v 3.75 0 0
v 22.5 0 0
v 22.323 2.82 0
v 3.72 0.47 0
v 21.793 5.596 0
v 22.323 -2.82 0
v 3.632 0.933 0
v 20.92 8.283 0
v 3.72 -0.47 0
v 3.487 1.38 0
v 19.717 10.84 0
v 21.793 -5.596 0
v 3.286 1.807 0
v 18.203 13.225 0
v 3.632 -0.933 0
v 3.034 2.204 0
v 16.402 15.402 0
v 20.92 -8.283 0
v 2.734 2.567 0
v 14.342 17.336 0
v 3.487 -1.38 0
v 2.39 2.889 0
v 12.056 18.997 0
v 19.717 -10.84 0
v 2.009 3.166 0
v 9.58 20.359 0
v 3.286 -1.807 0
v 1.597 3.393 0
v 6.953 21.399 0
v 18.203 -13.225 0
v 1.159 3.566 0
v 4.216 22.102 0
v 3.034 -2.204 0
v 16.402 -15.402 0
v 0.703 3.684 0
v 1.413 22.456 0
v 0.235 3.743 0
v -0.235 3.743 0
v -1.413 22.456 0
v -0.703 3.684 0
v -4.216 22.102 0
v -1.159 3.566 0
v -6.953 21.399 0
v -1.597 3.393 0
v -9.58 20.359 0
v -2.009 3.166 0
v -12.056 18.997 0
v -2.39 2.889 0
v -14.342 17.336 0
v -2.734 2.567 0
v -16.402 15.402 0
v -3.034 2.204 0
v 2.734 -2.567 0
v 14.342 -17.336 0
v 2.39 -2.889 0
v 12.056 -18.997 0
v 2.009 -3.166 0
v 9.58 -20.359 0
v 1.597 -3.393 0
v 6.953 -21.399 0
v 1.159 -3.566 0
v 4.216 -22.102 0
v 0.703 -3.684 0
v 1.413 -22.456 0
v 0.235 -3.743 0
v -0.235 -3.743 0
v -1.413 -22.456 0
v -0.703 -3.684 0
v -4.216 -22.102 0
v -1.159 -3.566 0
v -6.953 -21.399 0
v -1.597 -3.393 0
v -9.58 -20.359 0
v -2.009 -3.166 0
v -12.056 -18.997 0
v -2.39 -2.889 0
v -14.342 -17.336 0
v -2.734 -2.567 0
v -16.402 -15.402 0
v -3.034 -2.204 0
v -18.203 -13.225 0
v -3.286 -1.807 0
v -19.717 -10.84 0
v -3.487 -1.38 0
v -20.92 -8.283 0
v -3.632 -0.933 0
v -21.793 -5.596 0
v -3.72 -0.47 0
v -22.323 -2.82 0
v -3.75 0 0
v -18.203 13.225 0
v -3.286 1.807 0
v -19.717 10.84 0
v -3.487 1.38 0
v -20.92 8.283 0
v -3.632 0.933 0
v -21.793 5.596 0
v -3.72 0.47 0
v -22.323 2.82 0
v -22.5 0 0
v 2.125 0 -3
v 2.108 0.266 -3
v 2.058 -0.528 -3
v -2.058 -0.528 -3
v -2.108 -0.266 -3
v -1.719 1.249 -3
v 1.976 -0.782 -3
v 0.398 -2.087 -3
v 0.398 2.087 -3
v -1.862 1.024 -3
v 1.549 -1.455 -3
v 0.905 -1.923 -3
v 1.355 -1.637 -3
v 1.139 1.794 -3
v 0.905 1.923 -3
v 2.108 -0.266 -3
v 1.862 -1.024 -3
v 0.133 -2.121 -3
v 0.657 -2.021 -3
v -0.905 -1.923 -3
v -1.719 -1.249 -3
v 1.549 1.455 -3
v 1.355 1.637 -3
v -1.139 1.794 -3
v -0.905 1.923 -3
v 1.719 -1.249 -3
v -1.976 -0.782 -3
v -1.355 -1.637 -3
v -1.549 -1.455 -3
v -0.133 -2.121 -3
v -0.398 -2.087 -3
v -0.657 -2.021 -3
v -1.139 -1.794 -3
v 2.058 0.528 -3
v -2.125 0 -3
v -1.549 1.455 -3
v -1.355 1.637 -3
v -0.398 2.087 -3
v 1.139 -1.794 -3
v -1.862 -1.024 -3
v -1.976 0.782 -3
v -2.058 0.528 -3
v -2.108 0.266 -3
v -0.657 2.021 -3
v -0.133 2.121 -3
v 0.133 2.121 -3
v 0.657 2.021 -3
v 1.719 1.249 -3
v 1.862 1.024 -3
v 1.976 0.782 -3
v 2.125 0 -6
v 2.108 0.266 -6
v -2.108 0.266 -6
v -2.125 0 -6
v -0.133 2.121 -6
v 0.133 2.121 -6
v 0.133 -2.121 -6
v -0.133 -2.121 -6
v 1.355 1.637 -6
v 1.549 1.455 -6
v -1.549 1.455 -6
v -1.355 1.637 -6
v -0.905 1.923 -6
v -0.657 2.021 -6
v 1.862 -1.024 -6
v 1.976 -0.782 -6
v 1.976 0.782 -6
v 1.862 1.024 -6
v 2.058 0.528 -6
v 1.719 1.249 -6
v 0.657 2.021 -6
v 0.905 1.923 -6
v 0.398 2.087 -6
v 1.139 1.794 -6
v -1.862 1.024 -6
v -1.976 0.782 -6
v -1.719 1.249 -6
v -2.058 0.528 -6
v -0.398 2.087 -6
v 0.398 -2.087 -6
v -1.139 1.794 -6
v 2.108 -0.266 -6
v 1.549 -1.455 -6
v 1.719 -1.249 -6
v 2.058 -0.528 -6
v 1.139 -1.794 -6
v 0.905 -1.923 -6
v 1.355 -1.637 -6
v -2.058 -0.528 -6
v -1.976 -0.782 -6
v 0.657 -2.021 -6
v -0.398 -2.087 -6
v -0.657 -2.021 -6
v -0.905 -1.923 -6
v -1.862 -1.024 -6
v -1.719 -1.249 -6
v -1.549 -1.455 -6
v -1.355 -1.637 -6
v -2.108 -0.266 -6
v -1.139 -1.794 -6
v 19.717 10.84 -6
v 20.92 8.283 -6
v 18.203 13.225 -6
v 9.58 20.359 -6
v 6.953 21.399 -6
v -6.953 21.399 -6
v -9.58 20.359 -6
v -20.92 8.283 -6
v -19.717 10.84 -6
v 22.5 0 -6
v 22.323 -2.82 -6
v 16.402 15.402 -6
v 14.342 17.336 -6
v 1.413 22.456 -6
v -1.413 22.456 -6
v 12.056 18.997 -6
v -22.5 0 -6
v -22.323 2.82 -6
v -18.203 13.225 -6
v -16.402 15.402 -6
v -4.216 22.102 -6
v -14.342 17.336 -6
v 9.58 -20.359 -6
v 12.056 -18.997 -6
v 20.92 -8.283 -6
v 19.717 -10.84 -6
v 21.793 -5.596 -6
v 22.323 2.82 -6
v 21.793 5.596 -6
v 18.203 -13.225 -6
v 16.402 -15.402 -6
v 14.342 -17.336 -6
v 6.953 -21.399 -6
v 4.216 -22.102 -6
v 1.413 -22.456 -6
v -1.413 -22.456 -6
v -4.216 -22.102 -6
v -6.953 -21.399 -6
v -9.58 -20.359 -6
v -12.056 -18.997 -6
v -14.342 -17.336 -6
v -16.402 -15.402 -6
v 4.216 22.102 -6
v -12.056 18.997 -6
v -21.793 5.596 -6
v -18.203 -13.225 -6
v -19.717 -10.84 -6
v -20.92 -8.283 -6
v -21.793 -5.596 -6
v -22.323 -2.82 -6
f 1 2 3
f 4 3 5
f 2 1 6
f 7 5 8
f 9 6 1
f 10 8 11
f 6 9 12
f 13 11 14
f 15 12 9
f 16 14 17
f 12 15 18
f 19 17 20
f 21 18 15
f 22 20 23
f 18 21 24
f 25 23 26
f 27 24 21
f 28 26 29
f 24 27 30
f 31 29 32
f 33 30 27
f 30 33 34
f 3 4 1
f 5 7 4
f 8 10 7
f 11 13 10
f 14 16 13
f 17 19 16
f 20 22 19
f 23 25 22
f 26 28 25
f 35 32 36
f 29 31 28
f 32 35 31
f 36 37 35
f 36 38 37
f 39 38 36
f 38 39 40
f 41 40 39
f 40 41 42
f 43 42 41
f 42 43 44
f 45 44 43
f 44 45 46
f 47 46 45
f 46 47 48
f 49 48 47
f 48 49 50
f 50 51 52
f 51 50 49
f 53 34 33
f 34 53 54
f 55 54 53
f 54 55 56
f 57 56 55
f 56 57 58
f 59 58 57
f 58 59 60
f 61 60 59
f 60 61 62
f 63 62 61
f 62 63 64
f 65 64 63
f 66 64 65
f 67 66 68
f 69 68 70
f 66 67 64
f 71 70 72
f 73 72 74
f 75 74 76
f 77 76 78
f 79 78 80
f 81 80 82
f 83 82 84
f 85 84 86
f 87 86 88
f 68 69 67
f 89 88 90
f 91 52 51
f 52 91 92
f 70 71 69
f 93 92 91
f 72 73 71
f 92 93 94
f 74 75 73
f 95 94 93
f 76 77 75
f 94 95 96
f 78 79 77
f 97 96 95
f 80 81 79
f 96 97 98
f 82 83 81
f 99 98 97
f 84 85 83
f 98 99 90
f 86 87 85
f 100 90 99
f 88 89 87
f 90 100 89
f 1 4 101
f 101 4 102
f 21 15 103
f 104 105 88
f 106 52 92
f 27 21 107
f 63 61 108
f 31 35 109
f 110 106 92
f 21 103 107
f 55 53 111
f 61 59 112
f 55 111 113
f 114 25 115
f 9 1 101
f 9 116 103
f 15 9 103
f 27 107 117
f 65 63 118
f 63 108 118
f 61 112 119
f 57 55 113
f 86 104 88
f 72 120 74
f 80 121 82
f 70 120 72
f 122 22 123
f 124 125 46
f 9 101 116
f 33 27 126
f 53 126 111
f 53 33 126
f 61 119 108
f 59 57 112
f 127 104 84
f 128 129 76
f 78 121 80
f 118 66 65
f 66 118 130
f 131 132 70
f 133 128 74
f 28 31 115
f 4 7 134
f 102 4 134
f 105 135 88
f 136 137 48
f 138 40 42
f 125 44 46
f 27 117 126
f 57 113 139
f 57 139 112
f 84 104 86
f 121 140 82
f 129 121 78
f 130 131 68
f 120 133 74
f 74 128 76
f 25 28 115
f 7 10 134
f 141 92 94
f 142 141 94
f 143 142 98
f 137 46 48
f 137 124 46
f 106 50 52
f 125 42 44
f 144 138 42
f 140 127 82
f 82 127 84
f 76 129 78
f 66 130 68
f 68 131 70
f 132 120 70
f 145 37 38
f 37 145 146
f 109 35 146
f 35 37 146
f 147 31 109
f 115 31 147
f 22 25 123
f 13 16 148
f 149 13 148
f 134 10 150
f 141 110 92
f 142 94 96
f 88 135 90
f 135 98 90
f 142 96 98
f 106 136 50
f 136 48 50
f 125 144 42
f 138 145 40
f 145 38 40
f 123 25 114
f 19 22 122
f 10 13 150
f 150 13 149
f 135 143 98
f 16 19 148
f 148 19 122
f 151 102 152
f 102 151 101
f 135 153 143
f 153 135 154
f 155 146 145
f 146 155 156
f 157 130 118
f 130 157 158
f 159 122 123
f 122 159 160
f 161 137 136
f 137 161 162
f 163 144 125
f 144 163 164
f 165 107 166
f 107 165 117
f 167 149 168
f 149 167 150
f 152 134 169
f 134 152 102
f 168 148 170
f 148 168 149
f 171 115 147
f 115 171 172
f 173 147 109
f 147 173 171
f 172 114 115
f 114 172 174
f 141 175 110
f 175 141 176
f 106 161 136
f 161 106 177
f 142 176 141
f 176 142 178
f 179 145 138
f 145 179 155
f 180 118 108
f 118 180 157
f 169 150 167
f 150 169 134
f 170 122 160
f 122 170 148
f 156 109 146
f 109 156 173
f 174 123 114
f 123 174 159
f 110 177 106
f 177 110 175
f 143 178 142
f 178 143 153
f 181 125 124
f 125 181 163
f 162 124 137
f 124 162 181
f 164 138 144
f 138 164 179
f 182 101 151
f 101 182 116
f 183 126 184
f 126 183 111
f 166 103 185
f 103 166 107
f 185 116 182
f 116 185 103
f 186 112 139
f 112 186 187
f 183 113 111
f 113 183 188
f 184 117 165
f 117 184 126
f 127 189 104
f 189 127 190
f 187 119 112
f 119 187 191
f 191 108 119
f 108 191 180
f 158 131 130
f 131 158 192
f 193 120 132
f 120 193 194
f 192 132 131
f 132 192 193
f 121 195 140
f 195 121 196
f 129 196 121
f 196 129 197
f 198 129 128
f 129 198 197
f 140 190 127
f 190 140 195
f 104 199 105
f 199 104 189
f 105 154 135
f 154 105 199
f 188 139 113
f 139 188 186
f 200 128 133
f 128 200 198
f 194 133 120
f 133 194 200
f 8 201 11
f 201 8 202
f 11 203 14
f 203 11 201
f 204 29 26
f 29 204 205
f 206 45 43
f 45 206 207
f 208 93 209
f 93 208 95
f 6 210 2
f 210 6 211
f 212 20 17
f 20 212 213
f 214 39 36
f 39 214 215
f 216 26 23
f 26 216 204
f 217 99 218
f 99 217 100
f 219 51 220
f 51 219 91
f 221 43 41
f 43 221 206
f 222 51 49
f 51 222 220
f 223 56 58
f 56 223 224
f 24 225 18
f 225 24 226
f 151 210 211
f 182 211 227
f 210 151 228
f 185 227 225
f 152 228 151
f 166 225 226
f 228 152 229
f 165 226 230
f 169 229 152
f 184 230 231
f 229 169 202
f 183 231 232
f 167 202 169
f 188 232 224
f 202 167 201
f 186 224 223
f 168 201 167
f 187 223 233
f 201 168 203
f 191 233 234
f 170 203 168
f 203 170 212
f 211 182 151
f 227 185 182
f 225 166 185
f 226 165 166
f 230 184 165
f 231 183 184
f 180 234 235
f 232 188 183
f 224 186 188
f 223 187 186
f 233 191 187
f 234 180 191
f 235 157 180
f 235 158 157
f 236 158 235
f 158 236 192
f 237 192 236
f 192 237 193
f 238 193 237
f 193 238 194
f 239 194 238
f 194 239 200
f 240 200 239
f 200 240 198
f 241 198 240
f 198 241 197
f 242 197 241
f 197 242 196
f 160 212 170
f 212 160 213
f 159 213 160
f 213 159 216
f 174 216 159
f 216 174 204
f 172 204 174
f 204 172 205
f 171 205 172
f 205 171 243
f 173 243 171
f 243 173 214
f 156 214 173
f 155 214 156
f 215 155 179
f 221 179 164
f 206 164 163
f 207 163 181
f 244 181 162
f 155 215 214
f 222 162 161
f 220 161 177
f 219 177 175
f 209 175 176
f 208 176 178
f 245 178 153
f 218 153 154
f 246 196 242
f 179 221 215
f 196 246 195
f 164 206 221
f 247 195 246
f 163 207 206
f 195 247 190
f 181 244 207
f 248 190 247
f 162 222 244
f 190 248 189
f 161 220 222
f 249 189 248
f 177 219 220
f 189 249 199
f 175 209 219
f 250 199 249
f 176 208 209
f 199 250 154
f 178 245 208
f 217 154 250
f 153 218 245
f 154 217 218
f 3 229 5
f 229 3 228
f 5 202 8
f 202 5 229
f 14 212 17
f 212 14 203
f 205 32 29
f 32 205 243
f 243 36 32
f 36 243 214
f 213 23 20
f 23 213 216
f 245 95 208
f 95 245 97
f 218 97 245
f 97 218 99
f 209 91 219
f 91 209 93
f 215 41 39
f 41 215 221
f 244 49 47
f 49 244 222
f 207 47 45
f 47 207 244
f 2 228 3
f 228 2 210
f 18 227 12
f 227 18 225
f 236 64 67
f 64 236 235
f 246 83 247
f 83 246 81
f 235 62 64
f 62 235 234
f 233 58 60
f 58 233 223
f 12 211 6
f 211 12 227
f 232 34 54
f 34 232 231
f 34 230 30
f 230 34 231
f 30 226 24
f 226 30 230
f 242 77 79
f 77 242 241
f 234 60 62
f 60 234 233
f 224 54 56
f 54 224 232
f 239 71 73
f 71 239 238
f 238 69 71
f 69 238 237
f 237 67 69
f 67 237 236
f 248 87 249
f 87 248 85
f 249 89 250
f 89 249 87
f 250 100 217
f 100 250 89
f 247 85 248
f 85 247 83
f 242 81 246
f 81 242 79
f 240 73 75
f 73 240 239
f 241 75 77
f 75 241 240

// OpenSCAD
$fn = 50;


difference() {
	union() {
		translate(v = [0, 0, -6.0000000000]) {
			cylinder(h = 6, r = 22.5000000000);
		}
	}
	union() {
		translate(v = [0, 0, 0]) {
			rotate(a = [0, 0, 0]) {
				difference() {
					union() {
						translate(v = [0, 0, -9.0000000000]) {
							cylinder(h = 9, r = 2.0000000000);
						}
						translate(v = [0, 0, -3]) {
							cylinder(h = 3, r1 = 2.1250000000, r2 = 3.7500000000);
						}
						translate(v = [0, 0, -9.0000000000]) {
							cylinder(h = 9, r = 2.1250000000);
						}
						translate(v = [0, 0, -9.0000000000]) {
							cylinder(h = 9, r = 2.0000000000);
						}
					}
					union();
				}
			}
		}
	}
}
